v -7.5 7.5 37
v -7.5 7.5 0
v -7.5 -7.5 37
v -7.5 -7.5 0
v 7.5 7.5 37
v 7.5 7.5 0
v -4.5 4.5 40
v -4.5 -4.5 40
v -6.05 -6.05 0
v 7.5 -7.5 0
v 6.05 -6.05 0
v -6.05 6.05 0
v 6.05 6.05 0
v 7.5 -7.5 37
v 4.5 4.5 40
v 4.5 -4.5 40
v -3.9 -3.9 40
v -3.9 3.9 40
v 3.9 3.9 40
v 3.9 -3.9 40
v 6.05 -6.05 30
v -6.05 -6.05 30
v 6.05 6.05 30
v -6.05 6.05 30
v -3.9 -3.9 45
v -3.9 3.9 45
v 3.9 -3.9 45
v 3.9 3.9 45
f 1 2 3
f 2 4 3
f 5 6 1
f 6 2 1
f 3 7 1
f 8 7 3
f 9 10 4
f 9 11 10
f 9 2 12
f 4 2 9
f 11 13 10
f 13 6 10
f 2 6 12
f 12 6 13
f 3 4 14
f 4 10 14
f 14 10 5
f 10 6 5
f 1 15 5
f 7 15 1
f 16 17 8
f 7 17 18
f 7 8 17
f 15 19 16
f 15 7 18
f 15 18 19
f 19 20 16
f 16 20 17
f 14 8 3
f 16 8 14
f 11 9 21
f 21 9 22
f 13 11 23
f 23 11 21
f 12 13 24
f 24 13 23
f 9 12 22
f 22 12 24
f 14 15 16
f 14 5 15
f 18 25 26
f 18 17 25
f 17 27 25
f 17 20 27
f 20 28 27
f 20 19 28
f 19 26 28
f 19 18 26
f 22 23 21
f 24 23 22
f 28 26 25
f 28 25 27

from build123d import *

# Parameters (mm, degrees)
SKETCH_W     = 15
SKETCH_H     = 15
PAD_DEPTH    = 40
SKETCH001_W  = 12.1
SKETCH001_H  = 12.1
POCKET_DEPTH = 30
SKETCH002_W  = 7.8
SKETCH002_H  = 7.8
PAD001_DEPTH = 5
CHAMFER_SIZE = 3


with BuildPart() as part:
    # Sketch → Pad (new body)
    with BuildSketch(Plane.XY):
        Rectangle(SKETCH_W, SKETCH_H)
    extrude(amount=PAD_DEPTH)

    # Sketch001 (on Face5 of Pad) → Pocket (cut)
    with BuildSketch(Plane(origin=(0, 0, 0), x_dir=(1, 0, 0), z_dir=(0, 0, -1))):
        Rectangle(SKETCH001_W, SKETCH001_H)
    extrude(amount=-POCKET_DEPTH, mode=Mode.SUBTRACT)

    # Sketch002 (on Face5 of Pocket) → Pad001 (join)
    with BuildSketch(Plane.XY.offset(40)):
        Rectangle(SKETCH002_W, SKETCH002_H)
    extrude(amount=PAD001_DEPTH)

    # Chamfer
    chamfer_edges = [part.edges().sort_by_distance(p)[0] for p in [
        (-7.5, 0, 40),
        (0, 7.5, 40),
        (7.5, 0, 40),
        (0, -7.5, 40),
    ]]
    chamfer(chamfer_edges, length=CHAMFER_SIZE)


solid = part.part
